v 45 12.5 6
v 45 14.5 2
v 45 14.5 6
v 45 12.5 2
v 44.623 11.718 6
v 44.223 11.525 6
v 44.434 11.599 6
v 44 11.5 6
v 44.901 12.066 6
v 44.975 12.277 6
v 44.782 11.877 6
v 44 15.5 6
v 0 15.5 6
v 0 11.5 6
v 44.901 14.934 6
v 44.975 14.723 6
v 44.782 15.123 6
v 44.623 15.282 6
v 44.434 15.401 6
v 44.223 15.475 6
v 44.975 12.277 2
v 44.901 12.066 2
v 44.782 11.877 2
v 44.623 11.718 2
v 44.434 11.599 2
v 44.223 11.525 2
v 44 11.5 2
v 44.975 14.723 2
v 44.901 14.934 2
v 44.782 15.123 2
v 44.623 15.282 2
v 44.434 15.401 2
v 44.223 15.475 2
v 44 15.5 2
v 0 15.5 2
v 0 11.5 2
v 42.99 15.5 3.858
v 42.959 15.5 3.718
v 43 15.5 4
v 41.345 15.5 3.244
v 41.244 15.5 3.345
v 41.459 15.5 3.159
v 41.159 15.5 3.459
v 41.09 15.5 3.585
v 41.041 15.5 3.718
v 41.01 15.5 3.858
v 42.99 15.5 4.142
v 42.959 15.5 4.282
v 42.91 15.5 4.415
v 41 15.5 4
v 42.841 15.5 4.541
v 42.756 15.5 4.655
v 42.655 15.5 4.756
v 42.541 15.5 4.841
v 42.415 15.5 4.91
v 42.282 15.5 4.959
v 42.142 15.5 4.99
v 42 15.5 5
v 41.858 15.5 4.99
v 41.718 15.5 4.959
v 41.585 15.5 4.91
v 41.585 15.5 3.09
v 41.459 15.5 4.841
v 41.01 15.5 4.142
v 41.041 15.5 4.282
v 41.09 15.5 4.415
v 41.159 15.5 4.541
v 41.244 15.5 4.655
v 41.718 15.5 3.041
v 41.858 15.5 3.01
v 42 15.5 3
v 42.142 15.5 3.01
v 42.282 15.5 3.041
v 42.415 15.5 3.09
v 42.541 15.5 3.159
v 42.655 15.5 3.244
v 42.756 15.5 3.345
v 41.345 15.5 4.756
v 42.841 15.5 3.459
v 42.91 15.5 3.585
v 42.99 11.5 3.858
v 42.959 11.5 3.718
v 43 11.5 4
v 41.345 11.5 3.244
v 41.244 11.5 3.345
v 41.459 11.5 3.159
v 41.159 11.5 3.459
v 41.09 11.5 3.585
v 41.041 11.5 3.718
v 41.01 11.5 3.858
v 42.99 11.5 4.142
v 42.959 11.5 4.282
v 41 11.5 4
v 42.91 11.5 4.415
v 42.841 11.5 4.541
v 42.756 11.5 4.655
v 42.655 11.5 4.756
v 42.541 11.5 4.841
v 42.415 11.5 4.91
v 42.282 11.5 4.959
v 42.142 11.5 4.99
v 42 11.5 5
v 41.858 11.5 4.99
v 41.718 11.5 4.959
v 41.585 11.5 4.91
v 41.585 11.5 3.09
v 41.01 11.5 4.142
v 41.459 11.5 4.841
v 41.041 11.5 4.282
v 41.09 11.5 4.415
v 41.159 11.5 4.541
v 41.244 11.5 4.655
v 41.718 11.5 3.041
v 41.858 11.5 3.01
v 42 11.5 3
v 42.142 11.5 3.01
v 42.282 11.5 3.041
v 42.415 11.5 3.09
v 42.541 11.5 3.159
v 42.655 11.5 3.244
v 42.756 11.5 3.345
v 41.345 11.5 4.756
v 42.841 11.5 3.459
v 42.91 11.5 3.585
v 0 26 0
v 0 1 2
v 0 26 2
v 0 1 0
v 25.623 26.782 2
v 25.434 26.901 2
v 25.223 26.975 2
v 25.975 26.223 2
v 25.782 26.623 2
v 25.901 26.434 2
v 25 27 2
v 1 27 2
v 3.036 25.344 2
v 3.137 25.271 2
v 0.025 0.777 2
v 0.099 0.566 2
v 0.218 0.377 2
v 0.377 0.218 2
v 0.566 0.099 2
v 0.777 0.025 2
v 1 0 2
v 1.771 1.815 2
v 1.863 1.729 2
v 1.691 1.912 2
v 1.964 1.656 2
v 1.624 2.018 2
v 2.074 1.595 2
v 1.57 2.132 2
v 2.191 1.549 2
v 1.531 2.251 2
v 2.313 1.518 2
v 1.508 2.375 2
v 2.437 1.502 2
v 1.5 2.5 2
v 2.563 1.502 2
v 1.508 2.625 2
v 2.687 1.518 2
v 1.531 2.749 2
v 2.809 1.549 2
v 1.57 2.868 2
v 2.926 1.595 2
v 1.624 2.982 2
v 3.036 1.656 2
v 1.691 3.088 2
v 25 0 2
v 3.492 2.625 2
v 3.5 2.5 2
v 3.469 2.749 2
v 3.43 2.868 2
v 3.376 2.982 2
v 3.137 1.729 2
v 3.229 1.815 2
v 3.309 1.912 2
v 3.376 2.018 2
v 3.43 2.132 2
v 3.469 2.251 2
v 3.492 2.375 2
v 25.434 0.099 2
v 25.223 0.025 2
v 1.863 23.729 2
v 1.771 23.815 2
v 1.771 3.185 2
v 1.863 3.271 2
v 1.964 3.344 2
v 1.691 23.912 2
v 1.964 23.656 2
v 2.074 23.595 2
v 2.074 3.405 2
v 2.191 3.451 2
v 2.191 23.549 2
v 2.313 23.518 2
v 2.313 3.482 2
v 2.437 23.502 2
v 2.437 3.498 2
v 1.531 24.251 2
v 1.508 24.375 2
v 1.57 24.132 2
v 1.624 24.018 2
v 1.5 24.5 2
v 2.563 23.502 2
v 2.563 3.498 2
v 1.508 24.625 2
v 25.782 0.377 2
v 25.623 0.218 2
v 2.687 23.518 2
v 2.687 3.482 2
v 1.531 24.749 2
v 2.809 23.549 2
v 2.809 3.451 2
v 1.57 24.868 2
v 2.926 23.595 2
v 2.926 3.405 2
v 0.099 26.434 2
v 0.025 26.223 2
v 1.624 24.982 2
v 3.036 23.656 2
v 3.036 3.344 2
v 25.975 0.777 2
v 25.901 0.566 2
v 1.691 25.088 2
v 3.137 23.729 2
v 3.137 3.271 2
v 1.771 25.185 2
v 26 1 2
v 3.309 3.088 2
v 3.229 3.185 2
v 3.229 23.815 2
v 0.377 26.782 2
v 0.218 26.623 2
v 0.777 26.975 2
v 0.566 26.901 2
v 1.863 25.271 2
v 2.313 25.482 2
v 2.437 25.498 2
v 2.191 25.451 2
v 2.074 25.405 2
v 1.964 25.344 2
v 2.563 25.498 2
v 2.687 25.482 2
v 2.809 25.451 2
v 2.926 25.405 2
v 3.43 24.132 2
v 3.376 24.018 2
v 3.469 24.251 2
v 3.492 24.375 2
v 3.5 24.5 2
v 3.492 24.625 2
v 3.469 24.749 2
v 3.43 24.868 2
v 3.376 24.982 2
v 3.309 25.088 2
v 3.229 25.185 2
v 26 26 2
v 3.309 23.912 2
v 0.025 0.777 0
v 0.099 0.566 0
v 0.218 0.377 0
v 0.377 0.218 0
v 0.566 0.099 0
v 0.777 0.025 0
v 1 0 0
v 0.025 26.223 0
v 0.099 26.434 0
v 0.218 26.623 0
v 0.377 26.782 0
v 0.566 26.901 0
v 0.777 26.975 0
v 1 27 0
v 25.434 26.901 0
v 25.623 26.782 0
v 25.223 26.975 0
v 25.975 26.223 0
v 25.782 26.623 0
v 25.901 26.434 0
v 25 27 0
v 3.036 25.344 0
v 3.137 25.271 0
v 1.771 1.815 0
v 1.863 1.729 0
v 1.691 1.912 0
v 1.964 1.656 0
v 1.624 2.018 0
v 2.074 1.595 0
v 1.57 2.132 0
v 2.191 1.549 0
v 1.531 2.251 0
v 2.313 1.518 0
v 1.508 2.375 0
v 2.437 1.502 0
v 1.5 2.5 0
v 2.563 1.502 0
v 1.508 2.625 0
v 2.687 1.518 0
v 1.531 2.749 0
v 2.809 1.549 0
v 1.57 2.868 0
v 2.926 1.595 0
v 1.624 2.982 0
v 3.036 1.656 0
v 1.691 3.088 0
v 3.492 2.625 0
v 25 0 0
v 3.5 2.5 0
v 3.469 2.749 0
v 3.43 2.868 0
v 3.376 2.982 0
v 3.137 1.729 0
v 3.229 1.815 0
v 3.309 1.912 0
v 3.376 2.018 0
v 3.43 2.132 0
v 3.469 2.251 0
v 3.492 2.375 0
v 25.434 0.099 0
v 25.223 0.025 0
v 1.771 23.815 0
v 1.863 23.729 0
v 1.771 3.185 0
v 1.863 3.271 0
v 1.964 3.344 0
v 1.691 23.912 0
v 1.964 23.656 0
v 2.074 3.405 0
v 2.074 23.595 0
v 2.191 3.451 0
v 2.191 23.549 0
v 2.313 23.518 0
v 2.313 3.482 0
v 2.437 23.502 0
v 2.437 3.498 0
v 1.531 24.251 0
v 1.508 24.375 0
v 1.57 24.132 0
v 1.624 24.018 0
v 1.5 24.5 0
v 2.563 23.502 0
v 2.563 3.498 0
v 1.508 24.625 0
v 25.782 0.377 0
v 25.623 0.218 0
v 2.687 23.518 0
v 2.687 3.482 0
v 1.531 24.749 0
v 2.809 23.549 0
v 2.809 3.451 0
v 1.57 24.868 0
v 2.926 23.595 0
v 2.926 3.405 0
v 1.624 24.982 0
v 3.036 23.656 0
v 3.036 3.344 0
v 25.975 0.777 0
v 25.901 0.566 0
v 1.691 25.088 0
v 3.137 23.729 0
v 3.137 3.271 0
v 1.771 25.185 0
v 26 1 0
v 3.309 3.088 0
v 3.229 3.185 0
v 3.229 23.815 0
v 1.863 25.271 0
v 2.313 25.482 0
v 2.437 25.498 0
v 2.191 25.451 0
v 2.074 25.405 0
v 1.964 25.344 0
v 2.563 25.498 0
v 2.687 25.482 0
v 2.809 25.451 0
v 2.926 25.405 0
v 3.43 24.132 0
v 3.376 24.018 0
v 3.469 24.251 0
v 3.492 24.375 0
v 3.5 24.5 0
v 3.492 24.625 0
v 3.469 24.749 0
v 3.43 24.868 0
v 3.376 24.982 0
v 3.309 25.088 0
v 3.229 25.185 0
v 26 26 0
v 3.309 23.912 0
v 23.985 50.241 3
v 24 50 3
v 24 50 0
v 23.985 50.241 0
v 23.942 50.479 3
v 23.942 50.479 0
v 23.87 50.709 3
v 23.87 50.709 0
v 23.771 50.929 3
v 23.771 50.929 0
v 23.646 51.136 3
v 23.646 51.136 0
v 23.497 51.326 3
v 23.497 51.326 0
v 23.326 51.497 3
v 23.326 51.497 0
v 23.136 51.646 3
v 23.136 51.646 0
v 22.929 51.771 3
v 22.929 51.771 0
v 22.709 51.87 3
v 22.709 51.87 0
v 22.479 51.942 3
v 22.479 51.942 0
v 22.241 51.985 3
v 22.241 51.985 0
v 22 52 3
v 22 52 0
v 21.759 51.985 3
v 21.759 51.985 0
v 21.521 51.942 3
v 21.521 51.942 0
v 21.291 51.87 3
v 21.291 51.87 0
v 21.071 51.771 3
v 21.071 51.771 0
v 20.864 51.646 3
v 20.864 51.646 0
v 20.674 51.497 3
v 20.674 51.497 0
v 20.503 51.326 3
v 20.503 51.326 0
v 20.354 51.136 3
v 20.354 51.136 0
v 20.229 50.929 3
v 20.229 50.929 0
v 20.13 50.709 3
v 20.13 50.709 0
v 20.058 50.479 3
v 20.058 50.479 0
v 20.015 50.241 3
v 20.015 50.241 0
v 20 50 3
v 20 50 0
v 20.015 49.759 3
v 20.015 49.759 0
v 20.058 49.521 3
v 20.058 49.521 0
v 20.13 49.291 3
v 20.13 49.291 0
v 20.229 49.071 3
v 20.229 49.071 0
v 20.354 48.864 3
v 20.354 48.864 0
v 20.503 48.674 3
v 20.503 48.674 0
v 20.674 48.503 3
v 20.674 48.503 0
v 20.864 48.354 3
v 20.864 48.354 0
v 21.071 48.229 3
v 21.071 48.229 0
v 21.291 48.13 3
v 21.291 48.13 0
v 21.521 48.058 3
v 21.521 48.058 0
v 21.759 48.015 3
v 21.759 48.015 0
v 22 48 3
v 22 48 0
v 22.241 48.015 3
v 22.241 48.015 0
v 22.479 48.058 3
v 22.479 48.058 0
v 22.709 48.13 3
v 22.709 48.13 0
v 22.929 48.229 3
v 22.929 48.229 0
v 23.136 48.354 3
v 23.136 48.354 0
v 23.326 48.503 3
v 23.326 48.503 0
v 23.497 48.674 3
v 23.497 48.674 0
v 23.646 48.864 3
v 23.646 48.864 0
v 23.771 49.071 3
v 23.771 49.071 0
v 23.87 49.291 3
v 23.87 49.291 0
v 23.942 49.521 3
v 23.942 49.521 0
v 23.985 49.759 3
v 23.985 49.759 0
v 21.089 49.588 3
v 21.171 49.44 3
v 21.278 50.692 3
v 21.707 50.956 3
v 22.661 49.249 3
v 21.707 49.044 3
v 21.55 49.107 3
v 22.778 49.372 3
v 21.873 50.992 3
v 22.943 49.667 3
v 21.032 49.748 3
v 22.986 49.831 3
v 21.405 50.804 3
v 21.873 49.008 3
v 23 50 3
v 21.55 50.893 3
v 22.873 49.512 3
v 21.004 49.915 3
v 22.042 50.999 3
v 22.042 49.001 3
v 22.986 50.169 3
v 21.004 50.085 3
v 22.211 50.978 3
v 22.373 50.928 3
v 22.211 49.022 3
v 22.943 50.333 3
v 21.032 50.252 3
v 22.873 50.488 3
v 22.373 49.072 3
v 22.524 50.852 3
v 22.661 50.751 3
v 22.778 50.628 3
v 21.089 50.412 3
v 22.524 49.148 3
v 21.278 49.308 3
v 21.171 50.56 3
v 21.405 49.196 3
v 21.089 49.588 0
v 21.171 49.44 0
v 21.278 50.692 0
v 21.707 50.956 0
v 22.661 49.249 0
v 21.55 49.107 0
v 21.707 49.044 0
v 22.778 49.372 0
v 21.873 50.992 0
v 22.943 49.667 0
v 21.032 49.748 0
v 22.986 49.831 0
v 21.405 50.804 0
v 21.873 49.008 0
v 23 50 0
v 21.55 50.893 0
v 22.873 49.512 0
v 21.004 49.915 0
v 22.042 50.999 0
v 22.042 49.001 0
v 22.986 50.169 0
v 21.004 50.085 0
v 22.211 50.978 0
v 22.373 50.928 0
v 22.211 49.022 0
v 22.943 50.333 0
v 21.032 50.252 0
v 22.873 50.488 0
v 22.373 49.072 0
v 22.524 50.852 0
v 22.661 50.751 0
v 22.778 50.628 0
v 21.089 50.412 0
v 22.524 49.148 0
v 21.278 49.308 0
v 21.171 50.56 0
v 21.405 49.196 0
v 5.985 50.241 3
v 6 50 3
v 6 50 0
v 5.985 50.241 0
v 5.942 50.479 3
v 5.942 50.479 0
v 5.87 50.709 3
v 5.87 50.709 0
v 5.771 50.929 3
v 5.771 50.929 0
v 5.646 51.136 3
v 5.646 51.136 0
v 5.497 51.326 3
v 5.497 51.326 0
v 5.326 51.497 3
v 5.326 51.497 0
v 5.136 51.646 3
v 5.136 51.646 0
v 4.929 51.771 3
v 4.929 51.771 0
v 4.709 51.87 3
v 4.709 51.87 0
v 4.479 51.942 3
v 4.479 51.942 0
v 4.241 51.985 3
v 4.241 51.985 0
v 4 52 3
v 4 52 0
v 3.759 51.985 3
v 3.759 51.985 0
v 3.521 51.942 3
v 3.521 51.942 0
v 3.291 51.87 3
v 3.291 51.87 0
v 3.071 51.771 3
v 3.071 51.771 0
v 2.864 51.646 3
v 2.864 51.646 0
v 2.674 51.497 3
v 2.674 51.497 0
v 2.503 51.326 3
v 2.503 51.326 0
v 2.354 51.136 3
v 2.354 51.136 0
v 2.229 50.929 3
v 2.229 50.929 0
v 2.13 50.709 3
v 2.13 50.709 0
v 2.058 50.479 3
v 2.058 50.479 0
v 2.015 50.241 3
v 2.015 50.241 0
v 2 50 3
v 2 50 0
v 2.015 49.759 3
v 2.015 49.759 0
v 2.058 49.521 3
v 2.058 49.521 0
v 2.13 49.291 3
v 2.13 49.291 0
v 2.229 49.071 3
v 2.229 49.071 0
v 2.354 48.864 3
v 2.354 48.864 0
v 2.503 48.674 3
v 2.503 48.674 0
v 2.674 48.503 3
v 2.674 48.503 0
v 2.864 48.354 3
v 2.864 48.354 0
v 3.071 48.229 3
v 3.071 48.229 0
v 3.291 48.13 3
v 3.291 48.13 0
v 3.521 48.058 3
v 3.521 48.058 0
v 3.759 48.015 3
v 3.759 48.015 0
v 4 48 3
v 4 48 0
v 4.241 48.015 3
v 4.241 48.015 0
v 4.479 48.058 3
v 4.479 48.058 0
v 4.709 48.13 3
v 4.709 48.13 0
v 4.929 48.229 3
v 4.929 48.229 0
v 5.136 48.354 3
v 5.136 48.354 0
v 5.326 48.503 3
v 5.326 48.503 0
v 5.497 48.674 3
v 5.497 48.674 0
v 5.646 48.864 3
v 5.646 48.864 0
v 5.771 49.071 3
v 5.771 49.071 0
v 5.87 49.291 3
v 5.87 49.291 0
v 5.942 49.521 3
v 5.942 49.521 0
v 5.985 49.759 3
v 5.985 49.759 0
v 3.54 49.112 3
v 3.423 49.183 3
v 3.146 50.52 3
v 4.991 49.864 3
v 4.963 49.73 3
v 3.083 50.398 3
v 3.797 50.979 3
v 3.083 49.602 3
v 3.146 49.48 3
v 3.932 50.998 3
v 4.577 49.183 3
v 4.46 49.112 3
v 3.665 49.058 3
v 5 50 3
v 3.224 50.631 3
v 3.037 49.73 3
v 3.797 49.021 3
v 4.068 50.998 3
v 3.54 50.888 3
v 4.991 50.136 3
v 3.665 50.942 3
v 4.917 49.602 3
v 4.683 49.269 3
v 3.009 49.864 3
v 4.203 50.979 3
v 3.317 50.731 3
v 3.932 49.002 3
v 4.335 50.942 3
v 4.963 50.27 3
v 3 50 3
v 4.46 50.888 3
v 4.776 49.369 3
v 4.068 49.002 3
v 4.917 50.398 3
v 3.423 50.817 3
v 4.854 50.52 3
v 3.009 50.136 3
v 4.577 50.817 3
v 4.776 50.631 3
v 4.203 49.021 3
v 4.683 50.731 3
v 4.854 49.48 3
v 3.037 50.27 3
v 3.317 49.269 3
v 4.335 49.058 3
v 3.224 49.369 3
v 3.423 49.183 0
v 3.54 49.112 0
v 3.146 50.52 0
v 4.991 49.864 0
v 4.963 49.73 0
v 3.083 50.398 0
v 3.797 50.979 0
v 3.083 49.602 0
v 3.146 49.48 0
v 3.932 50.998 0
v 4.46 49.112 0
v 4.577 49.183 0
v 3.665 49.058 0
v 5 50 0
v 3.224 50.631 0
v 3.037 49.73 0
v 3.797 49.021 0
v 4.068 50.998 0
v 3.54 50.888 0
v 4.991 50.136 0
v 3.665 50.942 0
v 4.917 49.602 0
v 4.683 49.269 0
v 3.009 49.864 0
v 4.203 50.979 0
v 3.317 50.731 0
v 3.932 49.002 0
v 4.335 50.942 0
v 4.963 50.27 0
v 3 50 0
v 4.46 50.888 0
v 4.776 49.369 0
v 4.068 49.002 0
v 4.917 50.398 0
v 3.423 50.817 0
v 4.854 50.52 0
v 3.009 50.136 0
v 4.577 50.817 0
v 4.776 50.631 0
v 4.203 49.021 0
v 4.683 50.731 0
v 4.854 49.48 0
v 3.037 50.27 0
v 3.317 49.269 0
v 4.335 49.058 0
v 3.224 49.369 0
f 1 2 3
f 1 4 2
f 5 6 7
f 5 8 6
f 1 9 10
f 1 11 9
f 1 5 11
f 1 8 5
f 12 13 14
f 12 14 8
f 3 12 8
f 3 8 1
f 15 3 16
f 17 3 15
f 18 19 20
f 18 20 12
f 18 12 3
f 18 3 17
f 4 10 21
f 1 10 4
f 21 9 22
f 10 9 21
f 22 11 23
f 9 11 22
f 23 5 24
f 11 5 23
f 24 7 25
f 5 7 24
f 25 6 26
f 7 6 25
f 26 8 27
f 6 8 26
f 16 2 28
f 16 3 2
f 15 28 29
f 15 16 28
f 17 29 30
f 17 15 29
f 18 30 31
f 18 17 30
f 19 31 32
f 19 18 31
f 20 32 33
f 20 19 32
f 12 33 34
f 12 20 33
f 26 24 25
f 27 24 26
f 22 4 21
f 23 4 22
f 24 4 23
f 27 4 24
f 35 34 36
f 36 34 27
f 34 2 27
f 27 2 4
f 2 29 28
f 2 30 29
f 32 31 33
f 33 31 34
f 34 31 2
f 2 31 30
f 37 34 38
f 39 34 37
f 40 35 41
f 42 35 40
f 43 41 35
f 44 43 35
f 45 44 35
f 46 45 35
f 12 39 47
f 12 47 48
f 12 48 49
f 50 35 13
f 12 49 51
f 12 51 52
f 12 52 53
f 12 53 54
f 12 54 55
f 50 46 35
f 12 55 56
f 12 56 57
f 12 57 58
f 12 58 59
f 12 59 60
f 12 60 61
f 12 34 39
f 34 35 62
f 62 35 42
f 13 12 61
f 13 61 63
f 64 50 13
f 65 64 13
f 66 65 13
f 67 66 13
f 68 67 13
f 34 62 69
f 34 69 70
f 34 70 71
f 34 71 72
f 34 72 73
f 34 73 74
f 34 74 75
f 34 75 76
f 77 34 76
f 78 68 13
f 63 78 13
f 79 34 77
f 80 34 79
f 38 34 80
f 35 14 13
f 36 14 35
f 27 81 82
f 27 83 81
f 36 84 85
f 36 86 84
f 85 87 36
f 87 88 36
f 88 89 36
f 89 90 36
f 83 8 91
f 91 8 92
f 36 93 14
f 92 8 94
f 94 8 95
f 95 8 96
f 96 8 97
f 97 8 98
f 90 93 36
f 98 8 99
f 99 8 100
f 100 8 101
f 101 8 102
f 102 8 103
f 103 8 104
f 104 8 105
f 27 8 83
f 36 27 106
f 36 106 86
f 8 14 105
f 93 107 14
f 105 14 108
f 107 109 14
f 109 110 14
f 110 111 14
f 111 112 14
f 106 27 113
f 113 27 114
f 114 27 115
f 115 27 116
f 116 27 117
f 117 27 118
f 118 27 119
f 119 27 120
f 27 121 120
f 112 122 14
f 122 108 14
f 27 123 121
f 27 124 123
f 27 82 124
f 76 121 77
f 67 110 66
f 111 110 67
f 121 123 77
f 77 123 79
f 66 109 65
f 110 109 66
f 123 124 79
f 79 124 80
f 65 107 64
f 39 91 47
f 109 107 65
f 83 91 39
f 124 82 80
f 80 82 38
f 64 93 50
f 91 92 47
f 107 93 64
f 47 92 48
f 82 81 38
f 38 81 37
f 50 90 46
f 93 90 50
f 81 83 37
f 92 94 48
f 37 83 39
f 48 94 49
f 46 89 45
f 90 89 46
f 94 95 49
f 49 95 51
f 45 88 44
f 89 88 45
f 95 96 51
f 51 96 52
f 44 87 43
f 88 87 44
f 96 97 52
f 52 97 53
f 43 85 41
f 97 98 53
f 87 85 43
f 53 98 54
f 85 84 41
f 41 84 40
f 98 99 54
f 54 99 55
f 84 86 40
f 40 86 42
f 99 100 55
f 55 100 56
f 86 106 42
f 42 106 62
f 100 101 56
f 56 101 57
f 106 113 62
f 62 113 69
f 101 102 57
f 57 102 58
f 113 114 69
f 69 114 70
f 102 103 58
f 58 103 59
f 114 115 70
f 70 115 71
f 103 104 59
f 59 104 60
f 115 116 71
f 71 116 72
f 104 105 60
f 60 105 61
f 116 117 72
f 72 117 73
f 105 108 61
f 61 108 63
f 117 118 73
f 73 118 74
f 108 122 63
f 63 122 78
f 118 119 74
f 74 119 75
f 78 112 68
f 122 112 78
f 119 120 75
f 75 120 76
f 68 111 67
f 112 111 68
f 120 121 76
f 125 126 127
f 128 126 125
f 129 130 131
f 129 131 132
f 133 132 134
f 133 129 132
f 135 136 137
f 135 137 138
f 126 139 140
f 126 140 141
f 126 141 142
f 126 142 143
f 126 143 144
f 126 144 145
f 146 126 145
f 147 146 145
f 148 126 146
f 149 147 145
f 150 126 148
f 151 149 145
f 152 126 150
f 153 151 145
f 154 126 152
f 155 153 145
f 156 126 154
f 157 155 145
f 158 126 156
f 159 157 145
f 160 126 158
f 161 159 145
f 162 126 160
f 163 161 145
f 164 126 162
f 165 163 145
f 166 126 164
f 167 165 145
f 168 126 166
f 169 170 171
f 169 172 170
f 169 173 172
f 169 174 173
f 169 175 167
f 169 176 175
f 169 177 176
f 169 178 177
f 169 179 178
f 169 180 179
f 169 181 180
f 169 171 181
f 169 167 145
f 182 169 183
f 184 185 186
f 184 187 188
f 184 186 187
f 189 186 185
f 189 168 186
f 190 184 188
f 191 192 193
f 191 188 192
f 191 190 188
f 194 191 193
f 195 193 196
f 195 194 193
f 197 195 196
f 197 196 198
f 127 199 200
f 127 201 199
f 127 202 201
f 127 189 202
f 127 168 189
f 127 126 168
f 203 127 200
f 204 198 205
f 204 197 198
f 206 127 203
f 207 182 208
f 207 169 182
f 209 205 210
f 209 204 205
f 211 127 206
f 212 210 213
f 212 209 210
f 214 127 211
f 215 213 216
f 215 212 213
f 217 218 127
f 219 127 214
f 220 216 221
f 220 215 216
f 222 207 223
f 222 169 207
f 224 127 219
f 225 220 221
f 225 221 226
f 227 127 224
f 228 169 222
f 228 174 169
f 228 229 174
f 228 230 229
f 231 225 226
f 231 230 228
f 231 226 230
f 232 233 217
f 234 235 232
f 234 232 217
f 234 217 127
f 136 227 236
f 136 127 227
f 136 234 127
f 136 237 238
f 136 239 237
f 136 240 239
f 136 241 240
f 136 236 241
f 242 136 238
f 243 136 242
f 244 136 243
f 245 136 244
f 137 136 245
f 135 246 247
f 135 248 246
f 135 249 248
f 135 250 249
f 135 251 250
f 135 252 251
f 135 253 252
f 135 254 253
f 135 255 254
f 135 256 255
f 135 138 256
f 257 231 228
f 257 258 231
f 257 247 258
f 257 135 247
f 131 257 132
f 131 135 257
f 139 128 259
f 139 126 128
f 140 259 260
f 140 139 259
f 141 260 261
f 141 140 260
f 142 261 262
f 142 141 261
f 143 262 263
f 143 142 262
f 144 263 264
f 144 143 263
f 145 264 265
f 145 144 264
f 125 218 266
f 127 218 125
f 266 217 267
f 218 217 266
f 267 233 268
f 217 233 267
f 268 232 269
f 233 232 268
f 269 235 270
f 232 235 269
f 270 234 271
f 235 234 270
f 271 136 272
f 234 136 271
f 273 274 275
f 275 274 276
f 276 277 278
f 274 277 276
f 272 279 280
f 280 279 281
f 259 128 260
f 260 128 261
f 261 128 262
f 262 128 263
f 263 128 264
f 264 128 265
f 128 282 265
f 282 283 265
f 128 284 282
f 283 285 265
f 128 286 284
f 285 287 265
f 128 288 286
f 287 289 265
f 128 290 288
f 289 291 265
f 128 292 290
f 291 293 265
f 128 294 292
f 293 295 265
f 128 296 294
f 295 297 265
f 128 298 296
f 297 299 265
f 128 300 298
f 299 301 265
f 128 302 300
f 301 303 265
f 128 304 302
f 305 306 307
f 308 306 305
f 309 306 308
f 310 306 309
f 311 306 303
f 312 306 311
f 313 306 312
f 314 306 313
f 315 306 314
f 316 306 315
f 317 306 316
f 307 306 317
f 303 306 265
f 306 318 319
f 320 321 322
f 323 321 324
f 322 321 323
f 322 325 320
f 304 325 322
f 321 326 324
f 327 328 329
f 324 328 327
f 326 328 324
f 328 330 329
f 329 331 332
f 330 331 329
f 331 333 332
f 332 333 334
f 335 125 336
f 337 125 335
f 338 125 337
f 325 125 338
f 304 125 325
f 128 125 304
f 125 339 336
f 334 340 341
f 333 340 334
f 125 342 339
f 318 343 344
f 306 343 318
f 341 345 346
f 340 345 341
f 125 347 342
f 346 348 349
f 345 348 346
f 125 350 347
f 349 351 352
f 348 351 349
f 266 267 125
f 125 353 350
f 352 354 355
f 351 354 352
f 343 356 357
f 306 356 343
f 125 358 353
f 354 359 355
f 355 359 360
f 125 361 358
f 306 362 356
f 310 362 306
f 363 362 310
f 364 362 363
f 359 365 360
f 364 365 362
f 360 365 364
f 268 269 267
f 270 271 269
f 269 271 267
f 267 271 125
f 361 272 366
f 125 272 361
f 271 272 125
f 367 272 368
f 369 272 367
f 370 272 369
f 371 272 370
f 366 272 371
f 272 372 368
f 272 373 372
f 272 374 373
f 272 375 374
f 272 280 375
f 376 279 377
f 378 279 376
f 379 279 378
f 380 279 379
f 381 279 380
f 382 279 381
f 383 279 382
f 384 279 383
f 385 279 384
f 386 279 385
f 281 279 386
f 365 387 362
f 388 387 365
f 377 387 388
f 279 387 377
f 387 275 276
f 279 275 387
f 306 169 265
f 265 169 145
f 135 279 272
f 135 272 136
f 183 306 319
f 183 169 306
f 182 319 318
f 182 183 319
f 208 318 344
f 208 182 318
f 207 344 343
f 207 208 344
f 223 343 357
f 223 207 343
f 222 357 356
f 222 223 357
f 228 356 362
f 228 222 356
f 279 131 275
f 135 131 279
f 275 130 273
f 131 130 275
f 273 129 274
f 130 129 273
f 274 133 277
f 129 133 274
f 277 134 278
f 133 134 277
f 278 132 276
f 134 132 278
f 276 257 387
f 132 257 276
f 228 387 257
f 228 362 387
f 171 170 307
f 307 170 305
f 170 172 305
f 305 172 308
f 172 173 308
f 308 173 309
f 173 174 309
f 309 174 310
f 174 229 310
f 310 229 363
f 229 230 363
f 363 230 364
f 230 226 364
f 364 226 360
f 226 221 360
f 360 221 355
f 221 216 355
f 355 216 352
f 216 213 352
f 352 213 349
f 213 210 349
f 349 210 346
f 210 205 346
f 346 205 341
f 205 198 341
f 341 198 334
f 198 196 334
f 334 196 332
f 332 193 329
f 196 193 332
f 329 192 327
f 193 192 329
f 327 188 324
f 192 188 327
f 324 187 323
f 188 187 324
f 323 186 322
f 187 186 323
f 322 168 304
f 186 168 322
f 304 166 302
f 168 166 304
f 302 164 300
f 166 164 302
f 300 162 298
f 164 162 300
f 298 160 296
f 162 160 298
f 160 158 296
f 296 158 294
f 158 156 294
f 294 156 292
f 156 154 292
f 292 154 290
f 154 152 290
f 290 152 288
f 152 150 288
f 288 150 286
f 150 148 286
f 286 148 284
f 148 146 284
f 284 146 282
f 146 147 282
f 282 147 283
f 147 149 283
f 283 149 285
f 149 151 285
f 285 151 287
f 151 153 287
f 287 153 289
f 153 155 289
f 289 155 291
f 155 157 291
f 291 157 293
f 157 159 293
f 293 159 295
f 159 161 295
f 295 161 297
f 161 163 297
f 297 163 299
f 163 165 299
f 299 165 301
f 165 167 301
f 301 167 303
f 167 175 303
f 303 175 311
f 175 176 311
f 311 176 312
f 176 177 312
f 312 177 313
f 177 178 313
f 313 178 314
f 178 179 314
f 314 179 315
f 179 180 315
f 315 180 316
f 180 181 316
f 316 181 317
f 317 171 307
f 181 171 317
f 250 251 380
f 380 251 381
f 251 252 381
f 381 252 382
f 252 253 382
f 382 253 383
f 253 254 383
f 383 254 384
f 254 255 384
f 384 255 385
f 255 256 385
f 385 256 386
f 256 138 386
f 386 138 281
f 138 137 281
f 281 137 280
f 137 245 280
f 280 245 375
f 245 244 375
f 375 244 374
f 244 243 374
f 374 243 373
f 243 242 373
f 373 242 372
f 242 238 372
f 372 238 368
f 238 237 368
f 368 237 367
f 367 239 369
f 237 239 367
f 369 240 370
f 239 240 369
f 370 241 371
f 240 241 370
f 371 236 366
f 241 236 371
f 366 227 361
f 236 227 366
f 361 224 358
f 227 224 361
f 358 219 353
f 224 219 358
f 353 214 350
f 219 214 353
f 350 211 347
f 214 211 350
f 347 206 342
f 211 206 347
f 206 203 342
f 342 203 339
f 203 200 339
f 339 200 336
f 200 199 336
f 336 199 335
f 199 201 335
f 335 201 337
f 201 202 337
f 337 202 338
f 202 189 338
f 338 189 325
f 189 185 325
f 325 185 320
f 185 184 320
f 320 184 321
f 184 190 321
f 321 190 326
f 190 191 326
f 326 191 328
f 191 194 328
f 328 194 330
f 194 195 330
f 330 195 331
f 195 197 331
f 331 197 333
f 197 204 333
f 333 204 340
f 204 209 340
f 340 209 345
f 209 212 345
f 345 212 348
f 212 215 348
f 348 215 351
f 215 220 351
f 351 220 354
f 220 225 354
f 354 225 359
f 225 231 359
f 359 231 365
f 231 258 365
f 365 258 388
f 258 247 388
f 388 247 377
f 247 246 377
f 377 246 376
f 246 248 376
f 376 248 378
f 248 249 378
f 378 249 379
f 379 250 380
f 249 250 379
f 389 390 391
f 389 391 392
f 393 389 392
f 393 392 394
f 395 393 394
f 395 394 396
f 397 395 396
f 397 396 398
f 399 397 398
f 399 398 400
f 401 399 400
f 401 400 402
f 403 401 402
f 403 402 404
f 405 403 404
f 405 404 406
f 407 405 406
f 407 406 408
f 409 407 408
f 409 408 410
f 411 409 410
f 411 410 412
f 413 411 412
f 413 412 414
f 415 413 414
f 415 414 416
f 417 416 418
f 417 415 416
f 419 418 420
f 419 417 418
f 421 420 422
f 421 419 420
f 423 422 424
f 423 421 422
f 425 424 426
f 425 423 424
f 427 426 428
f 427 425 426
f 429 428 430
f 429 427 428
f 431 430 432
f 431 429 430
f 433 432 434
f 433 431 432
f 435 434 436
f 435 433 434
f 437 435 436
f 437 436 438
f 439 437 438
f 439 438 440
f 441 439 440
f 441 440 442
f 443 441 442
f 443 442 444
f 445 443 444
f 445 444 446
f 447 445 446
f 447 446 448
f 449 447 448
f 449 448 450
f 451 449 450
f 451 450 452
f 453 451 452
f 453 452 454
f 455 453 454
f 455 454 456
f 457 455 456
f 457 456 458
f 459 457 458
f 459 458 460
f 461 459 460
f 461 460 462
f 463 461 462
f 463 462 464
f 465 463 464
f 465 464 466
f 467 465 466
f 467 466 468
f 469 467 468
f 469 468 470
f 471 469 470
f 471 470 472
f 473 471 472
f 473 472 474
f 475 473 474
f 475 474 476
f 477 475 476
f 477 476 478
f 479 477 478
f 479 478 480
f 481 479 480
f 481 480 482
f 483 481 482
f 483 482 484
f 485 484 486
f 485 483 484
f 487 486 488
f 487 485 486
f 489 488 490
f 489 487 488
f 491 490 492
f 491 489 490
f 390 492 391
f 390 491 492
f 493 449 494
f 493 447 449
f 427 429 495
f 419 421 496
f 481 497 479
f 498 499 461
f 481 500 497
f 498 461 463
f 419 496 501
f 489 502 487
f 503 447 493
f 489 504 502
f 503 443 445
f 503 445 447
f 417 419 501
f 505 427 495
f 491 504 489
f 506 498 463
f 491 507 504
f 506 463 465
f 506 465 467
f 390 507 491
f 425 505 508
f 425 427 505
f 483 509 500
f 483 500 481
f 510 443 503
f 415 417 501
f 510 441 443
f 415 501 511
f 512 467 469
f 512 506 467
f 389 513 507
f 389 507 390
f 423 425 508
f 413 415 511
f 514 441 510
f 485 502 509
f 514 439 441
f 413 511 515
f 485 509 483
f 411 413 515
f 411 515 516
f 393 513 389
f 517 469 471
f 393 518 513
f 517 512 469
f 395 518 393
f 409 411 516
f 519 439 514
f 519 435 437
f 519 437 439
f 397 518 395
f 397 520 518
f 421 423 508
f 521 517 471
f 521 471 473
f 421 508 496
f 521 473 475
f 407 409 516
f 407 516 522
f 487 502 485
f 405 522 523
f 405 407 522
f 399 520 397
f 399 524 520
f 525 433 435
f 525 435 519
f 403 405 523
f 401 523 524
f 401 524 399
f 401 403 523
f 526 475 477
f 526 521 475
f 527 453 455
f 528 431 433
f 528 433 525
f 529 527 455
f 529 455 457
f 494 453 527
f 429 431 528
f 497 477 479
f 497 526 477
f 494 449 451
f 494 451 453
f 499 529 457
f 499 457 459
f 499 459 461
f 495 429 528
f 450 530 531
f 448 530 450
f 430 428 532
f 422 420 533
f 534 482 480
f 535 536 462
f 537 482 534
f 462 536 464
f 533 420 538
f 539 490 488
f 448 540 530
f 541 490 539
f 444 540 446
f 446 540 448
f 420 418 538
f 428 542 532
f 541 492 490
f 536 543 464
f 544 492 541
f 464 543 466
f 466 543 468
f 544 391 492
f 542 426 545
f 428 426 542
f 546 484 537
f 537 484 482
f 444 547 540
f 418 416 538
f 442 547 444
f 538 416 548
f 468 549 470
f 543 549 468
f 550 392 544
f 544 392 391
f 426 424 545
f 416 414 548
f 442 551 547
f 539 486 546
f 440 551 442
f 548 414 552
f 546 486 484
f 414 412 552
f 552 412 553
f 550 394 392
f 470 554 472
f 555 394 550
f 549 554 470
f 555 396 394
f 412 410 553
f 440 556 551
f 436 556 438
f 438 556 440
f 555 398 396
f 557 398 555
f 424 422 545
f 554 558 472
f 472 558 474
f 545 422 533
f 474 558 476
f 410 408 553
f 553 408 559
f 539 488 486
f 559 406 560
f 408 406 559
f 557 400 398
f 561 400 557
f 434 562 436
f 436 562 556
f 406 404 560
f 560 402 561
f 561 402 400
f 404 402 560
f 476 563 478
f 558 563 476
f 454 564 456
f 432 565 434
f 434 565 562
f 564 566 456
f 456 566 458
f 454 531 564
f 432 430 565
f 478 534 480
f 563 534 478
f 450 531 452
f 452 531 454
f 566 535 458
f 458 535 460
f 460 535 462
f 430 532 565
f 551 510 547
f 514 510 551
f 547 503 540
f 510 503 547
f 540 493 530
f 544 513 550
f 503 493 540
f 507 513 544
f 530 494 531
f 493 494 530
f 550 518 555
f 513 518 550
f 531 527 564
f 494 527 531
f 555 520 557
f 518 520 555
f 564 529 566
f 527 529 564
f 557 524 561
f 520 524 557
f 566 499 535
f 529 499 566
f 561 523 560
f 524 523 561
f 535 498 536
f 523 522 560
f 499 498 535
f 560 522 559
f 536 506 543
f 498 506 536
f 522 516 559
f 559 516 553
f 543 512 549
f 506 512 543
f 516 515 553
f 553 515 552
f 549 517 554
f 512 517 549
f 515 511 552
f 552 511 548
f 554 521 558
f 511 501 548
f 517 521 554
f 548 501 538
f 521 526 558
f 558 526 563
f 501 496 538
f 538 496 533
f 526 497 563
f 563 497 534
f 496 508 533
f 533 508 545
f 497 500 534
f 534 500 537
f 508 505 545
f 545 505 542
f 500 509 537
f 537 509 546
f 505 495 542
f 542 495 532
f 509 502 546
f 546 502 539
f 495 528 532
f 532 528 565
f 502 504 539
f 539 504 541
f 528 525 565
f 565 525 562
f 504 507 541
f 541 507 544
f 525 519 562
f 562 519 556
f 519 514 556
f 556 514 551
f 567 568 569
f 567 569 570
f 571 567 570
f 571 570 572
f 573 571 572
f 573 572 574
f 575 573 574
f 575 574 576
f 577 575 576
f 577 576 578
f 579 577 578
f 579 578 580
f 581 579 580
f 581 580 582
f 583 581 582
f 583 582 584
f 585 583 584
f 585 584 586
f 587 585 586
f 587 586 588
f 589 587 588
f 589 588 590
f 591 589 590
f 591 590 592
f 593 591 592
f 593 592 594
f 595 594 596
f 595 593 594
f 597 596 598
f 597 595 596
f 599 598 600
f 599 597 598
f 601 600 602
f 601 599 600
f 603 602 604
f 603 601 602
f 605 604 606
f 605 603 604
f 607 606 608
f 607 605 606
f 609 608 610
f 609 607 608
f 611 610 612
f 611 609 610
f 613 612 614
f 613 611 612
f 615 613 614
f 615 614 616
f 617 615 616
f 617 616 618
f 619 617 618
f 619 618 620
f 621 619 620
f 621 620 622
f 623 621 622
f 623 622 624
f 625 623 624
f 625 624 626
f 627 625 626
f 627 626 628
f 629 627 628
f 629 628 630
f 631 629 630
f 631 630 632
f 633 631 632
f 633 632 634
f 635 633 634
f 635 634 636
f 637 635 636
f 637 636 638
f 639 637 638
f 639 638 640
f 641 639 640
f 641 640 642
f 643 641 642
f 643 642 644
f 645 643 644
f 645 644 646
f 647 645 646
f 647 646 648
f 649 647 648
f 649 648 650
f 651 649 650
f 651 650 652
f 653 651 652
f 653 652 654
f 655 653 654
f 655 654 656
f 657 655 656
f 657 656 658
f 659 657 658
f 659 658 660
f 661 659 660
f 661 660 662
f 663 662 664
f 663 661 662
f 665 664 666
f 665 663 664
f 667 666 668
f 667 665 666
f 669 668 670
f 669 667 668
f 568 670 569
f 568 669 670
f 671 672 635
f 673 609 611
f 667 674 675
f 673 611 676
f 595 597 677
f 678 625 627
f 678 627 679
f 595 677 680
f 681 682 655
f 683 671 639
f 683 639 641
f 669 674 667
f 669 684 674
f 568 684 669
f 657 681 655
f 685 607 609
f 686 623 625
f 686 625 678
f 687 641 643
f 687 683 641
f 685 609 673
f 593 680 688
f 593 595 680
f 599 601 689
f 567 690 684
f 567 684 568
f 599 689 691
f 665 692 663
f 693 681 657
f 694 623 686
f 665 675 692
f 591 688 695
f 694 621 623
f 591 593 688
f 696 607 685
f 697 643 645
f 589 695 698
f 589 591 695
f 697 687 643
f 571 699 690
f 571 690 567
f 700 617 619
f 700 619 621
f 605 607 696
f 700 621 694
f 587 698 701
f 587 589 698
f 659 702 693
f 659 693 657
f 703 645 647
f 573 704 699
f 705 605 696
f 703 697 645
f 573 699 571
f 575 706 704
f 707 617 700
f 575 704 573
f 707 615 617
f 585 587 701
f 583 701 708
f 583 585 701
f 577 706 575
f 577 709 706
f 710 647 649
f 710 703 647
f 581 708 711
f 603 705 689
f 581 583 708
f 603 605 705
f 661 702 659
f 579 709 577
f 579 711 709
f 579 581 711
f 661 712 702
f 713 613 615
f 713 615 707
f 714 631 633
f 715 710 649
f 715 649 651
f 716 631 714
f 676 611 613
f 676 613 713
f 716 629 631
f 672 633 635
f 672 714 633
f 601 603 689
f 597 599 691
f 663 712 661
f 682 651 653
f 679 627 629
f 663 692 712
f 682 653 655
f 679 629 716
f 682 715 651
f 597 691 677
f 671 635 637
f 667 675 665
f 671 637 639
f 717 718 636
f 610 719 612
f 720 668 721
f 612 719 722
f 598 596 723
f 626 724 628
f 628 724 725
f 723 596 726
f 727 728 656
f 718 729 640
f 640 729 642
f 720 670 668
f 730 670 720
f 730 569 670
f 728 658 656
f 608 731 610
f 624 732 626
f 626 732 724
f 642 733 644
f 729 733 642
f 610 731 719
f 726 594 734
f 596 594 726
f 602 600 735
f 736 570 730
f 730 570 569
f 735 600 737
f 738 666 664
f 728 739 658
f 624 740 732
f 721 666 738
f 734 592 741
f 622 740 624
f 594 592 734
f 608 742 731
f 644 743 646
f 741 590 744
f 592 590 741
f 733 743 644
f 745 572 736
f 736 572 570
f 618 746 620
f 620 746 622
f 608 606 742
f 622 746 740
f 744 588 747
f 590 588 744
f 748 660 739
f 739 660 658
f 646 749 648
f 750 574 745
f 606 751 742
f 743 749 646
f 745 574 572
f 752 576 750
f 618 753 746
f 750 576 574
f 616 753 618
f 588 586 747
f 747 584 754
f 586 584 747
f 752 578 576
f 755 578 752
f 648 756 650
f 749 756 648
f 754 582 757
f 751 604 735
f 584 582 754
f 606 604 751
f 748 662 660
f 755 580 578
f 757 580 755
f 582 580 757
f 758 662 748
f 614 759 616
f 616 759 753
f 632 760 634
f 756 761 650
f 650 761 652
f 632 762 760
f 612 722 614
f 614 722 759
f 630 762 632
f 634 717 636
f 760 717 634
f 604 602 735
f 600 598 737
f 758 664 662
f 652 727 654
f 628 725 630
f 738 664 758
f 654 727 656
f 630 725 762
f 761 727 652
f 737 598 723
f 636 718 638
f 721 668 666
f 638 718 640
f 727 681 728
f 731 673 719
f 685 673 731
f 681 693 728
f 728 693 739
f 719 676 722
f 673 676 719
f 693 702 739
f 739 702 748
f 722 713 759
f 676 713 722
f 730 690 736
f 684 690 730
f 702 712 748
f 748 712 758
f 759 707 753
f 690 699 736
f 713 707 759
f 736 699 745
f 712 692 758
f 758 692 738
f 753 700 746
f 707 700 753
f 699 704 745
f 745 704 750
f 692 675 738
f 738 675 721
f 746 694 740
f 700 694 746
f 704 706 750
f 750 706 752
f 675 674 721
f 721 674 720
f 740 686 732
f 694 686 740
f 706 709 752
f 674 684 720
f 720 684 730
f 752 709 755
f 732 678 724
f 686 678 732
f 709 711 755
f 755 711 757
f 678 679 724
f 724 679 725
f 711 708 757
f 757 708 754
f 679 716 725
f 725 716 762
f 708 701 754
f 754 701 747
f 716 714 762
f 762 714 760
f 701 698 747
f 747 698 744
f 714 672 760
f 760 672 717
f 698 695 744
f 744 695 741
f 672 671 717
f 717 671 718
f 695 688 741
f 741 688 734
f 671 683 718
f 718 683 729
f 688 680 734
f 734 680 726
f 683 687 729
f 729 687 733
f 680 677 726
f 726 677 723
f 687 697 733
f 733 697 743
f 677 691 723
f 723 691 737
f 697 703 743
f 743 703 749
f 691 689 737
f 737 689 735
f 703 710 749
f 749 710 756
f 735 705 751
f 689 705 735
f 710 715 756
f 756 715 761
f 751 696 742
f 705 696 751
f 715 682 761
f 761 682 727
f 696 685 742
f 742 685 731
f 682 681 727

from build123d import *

# Parameters (mm, degrees)
CYLINDER003_R          = 1
CYLINDER003_DEPTH      = 3
CYLINDER002_R          = 2
CYLINDER002_DEPTH      = 3
CYLINDER004_R          = 1
CYLINDER004_DEPTH      = 3
CYLINDER005_R          = 2
CYLINDER005_DEPTH      = 3
CYLINDER001_R          = 1
CYLINDER001_DEPTH      = 2
CYLINDER_R             = 1
CYLINDER_DEPTH         = 2
BOX_W                  = 26
BOX_H                  = 27
BOX_DEPTH              = 2
FILLET001_R            = 1
CYLINDER006_R          = 1
CYLINDER006_DEPTH      = 4
CYLINDER006_ROLL_ANGLE = 90
BOX001_W               = 45
BOX001_H               = 4
BOX001_DEPTH           = 4
FILLET_R               = 1


with BuildPart() as cylinder003:
    # Cylinder003 → Cylinder003 (new body)
    with BuildSketch(Plane(origin=(4, 50, 0), x_dir=(1, 0, 0), z_dir=(0, 0, 1))):
        Circle(CYLINDER003_R)
    extrude(amount=CYLINDER003_DEPTH)


with BuildPart() as cut002:
    # Cylinder002 → Cylinder002 (new body)
    with BuildSketch(Plane(origin=(4, 50, 0), x_dir=(1, 0, 0), z_dir=(0, 0, 1))):
        Circle(CYLINDER002_R)
    extrude(amount=CYLINDER002_DEPTH)

    # Cut002: cut Cylinder003
    add(cylinder003.part, mode=Mode.SUBTRACT)


with BuildPart() as cylinder004:
    # Cylinder004 → Cylinder004 (new body)
    with BuildSketch(Plane(origin=(4, 50, 0), x_dir=(1, 0, 0), z_dir=(0, 0, 1))):
        Circle(CYLINDER004_R)
    extrude(amount=CYLINDER004_DEPTH)


with BuildPart() as cut003:
    # Cylinder005 → Cylinder005 (new body)
    with BuildSketch(Plane(origin=(4, 50, 0), x_dir=(1, 0, 0), z_dir=(0, 0, 1))):
        Circle(CYLINDER005_R)
    extrude(amount=CYLINDER005_DEPTH)

    # Cut003: cut Cylinder004
    add(cylinder004.part, mode=Mode.SUBTRACT)


with BuildPart() as cut003_1:
    # Cut003 placement: moved
    add(cut003.part.moved(Location((18, 0, 0))))


with BuildPart() as cylinder001:
    # Cylinder001 → Cylinder001 (new body)
    with BuildSketch(Plane(origin=(2.5, 24.5, 0), x_dir=(1, 0, 0), z_dir=(0, 0, 1))):
        Circle(CYLINDER001_R)
    extrude(amount=CYLINDER001_DEPTH)


with BuildPart() as cylinder:
    # Cylinder → Cylinder (new body)
    with BuildSketch(Plane(origin=(2.5, 2.5, 0), x_dir=(1, 0, 0), z_dir=(0, 0, 1))):
        Circle(CYLINDER_R)
    extrude(amount=CYLINDER_DEPTH)


with BuildPart() as fillet001:
    # Box → Box (new body)
    with BuildSketch(Plane.XY):
        with Locations((13, 13.5)):
            Rectangle(BOX_W, BOX_H)
    extrude(amount=BOX_DEPTH)

    # Cut: cut Cylinder
    add(cylinder.part, mode=Mode.SUBTRACT)

    # Cut001: cut Cylinder001
    add(cylinder001.part, mode=Mode.SUBTRACT)

    # Fillet001
    fillet001_edges = [fillet001.edges().sort_by_distance(p)[0] for p in [
        (0, 0, 1),
        (0, 27, 1),
        (26, 0, 1),
        (26, 27, 1),
    ]]
    fillet(fillet001_edges, radius=FILLET001_R)


with BuildPart() as cylinder006:
    # Cylinder006 → Cylinder006 (new body)
    with BuildSketch(Plane.XY):
        Circle(CYLINDER006_R)
    extrude(amount=CYLINDER006_DEPTH)


with BuildPart() as cylinder006_1:
    # Cylinder006 roll: moved
    add(cylinder006.part.rotate(Axis((0, 0, 0), (1, 0, 0)), CYLINDER006_ROLL_ANGLE))


with BuildPart() as cylinder006_2:
    # Cylinder006 placement: moved
    add(cylinder006_1.part.moved(Location((42, 15.5, 4))))


with BuildPart() as cut004:
    # Box001 → Box001 (new body)
    with BuildSketch(Plane(origin=(0, 11.5, 2), x_dir=(1, 0, 0), z_dir=(0, 0, 1))):
        with Locations((22.5, 2)):
            Rectangle(BOX001_W, BOX001_H)
    extrude(amount=BOX001_DEPTH)

    # Fillet
    fillet_edges = [cut004.edges().sort_by_distance(p)[0] for p in [
        (45, 11.5, 4),
        (45, 15.5, 4),
    ]]
    fillet(fillet_edges, radius=FILLET_R)

    # Cut004: cut Cylinder006
    add(cylinder006_2.part, mode=Mode.SUBTRACT)


solid = Compound([cut002.part, cut003_1.part, fillet001.part, cut004.part])
